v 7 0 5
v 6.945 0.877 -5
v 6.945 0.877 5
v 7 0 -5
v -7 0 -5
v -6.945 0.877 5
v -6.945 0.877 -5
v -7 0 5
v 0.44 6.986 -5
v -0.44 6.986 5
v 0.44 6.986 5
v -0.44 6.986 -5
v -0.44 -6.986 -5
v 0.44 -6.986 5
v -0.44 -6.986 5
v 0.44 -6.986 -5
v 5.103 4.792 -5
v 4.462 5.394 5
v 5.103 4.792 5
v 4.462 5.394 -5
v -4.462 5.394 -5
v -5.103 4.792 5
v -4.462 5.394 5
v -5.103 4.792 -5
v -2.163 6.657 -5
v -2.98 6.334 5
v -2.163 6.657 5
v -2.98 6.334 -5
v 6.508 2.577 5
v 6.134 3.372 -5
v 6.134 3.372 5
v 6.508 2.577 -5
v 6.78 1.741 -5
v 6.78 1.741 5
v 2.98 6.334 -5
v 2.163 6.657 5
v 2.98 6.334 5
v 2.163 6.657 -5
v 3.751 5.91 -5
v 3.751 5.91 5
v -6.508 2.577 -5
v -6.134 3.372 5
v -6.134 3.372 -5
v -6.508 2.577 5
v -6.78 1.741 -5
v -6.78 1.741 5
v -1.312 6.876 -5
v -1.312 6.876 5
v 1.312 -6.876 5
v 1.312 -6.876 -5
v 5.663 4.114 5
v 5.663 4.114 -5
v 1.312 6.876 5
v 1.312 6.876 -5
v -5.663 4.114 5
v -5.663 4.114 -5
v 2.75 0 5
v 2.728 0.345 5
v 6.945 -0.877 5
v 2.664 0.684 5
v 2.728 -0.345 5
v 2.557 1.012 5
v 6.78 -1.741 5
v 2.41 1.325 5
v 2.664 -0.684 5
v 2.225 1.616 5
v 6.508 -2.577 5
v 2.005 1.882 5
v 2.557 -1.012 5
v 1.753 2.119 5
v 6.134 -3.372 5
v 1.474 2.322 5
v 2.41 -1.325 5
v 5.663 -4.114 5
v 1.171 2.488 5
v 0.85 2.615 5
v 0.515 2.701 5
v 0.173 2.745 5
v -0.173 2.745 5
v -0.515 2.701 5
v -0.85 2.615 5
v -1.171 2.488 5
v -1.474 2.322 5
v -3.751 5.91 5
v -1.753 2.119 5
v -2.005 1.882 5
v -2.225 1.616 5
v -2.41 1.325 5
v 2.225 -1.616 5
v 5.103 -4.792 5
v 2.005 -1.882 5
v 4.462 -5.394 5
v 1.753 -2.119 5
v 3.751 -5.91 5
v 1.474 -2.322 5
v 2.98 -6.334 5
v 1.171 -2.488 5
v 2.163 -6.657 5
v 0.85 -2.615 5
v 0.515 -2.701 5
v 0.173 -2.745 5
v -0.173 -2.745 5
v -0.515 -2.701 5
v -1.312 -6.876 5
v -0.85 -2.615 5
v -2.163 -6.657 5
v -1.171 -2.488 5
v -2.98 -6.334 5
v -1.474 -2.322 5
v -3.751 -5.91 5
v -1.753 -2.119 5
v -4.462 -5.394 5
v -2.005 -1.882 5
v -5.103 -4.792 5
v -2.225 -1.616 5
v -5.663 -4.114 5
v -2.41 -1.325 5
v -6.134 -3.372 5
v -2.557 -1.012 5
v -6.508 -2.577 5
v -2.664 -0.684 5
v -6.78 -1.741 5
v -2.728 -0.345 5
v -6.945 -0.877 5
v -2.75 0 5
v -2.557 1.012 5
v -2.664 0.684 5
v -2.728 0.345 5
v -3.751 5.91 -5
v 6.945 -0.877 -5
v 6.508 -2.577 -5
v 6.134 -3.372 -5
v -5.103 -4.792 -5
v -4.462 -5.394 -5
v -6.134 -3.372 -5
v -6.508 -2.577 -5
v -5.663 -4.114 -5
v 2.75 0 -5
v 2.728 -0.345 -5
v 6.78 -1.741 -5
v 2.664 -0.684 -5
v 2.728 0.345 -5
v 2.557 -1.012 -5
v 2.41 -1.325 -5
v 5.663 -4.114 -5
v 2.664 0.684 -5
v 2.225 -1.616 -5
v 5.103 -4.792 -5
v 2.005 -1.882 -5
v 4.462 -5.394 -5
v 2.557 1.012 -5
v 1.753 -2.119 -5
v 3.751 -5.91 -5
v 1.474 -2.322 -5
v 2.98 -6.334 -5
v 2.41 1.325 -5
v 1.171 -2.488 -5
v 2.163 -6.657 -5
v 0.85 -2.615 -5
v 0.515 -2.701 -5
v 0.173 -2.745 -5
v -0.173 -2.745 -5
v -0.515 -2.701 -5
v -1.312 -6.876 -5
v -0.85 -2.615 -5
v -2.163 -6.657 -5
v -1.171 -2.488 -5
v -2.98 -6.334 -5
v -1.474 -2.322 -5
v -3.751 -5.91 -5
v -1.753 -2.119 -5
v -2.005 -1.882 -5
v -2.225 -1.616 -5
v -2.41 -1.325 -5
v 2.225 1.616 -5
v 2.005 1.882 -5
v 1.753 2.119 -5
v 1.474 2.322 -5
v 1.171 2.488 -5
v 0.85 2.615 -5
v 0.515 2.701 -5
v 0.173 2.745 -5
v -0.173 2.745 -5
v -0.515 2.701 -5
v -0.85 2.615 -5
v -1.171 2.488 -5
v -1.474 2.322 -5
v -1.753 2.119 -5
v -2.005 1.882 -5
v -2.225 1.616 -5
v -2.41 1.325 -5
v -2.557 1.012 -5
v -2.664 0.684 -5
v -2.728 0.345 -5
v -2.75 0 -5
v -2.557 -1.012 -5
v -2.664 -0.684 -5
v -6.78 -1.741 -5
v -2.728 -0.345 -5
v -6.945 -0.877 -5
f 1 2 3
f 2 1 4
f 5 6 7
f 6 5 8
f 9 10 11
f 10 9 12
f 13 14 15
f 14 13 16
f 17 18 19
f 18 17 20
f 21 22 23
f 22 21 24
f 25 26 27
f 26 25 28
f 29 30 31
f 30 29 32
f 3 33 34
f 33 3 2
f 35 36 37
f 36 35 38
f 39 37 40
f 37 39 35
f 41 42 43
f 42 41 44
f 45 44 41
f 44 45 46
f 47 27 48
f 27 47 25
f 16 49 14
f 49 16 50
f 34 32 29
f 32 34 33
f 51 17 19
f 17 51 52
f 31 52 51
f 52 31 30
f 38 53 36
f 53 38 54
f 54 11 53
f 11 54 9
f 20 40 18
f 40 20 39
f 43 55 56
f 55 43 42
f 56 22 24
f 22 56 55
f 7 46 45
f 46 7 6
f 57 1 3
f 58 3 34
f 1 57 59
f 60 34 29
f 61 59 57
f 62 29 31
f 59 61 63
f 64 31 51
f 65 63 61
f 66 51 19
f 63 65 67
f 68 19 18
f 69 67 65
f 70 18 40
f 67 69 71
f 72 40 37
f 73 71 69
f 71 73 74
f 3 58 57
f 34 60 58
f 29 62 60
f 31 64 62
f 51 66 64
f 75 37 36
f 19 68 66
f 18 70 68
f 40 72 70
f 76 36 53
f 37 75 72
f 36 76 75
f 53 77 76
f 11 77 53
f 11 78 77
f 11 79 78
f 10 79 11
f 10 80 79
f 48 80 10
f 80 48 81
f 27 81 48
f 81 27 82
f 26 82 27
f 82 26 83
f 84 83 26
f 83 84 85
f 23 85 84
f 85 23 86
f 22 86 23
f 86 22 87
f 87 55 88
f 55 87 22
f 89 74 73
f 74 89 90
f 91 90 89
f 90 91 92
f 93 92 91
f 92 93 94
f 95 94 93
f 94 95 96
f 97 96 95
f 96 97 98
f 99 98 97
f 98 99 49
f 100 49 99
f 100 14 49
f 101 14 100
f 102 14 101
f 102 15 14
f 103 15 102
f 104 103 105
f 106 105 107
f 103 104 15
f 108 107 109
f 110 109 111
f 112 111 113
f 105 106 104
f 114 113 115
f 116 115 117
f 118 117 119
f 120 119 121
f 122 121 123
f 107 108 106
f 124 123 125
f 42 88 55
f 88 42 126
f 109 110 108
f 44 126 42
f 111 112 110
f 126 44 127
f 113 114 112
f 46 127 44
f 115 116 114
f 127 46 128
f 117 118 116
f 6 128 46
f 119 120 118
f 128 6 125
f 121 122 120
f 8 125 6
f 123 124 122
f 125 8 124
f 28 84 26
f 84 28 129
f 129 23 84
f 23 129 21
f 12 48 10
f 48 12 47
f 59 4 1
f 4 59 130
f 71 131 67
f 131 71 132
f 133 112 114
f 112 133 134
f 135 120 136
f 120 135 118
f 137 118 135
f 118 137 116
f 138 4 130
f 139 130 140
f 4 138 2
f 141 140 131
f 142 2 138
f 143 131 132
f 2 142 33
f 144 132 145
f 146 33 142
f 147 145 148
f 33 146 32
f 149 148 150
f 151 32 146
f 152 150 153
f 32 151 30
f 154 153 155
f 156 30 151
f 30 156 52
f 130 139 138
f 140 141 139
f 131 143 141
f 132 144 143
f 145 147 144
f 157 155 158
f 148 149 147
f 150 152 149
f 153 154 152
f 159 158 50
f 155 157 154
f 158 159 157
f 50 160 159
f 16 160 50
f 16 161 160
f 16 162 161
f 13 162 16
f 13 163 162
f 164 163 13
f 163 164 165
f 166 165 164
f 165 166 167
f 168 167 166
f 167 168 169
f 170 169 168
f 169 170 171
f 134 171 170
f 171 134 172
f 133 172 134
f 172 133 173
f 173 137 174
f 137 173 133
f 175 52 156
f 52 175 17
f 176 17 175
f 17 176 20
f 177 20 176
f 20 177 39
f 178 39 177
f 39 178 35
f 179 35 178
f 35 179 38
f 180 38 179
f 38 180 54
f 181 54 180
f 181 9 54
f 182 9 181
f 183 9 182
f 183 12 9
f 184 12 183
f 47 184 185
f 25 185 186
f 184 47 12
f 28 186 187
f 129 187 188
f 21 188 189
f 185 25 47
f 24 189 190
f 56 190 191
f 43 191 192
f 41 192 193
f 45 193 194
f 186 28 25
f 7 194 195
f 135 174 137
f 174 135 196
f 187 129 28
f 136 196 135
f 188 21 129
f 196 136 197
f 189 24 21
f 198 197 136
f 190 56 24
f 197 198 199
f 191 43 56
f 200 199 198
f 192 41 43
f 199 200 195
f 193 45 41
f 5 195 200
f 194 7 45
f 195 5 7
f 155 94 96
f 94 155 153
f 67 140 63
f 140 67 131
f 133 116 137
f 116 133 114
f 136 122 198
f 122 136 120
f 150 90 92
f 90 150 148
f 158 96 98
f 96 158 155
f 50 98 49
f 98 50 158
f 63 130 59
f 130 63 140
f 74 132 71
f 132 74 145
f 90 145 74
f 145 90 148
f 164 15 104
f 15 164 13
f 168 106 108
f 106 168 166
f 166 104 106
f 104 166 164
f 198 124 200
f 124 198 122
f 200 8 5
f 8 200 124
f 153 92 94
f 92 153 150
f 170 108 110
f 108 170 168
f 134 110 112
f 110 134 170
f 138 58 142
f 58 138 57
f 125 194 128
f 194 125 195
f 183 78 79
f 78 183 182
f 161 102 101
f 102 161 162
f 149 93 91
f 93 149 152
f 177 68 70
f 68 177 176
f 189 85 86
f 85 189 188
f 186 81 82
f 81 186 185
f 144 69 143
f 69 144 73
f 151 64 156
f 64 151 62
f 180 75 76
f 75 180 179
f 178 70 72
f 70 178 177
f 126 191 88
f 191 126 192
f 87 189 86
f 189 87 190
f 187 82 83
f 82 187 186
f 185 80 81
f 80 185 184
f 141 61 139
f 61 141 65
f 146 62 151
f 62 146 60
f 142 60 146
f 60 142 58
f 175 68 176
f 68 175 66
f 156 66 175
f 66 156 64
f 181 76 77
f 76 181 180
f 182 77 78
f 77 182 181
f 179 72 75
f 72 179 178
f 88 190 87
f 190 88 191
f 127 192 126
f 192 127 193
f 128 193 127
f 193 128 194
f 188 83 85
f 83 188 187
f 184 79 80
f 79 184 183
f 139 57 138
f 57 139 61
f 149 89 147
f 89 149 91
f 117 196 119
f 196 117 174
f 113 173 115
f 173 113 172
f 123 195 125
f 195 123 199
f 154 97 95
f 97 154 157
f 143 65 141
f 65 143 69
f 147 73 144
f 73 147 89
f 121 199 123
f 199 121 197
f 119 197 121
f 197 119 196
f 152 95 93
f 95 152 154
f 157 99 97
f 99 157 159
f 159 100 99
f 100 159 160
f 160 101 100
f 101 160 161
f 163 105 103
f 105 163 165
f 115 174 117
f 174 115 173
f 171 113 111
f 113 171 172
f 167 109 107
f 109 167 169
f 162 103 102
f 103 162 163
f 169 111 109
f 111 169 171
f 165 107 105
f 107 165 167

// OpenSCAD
$fn = 50;


difference() {
	union() {
		translate(v = [0, 0, -5.0000000000]) {
			cylinder(h = 10, r = 7.0000000000);
		}
	}
	union() {
		translate(v = [0, 0, -100.0000000000]) {
			cylinder(h = 200, r = 2.7500000000);
		}
	}
}
